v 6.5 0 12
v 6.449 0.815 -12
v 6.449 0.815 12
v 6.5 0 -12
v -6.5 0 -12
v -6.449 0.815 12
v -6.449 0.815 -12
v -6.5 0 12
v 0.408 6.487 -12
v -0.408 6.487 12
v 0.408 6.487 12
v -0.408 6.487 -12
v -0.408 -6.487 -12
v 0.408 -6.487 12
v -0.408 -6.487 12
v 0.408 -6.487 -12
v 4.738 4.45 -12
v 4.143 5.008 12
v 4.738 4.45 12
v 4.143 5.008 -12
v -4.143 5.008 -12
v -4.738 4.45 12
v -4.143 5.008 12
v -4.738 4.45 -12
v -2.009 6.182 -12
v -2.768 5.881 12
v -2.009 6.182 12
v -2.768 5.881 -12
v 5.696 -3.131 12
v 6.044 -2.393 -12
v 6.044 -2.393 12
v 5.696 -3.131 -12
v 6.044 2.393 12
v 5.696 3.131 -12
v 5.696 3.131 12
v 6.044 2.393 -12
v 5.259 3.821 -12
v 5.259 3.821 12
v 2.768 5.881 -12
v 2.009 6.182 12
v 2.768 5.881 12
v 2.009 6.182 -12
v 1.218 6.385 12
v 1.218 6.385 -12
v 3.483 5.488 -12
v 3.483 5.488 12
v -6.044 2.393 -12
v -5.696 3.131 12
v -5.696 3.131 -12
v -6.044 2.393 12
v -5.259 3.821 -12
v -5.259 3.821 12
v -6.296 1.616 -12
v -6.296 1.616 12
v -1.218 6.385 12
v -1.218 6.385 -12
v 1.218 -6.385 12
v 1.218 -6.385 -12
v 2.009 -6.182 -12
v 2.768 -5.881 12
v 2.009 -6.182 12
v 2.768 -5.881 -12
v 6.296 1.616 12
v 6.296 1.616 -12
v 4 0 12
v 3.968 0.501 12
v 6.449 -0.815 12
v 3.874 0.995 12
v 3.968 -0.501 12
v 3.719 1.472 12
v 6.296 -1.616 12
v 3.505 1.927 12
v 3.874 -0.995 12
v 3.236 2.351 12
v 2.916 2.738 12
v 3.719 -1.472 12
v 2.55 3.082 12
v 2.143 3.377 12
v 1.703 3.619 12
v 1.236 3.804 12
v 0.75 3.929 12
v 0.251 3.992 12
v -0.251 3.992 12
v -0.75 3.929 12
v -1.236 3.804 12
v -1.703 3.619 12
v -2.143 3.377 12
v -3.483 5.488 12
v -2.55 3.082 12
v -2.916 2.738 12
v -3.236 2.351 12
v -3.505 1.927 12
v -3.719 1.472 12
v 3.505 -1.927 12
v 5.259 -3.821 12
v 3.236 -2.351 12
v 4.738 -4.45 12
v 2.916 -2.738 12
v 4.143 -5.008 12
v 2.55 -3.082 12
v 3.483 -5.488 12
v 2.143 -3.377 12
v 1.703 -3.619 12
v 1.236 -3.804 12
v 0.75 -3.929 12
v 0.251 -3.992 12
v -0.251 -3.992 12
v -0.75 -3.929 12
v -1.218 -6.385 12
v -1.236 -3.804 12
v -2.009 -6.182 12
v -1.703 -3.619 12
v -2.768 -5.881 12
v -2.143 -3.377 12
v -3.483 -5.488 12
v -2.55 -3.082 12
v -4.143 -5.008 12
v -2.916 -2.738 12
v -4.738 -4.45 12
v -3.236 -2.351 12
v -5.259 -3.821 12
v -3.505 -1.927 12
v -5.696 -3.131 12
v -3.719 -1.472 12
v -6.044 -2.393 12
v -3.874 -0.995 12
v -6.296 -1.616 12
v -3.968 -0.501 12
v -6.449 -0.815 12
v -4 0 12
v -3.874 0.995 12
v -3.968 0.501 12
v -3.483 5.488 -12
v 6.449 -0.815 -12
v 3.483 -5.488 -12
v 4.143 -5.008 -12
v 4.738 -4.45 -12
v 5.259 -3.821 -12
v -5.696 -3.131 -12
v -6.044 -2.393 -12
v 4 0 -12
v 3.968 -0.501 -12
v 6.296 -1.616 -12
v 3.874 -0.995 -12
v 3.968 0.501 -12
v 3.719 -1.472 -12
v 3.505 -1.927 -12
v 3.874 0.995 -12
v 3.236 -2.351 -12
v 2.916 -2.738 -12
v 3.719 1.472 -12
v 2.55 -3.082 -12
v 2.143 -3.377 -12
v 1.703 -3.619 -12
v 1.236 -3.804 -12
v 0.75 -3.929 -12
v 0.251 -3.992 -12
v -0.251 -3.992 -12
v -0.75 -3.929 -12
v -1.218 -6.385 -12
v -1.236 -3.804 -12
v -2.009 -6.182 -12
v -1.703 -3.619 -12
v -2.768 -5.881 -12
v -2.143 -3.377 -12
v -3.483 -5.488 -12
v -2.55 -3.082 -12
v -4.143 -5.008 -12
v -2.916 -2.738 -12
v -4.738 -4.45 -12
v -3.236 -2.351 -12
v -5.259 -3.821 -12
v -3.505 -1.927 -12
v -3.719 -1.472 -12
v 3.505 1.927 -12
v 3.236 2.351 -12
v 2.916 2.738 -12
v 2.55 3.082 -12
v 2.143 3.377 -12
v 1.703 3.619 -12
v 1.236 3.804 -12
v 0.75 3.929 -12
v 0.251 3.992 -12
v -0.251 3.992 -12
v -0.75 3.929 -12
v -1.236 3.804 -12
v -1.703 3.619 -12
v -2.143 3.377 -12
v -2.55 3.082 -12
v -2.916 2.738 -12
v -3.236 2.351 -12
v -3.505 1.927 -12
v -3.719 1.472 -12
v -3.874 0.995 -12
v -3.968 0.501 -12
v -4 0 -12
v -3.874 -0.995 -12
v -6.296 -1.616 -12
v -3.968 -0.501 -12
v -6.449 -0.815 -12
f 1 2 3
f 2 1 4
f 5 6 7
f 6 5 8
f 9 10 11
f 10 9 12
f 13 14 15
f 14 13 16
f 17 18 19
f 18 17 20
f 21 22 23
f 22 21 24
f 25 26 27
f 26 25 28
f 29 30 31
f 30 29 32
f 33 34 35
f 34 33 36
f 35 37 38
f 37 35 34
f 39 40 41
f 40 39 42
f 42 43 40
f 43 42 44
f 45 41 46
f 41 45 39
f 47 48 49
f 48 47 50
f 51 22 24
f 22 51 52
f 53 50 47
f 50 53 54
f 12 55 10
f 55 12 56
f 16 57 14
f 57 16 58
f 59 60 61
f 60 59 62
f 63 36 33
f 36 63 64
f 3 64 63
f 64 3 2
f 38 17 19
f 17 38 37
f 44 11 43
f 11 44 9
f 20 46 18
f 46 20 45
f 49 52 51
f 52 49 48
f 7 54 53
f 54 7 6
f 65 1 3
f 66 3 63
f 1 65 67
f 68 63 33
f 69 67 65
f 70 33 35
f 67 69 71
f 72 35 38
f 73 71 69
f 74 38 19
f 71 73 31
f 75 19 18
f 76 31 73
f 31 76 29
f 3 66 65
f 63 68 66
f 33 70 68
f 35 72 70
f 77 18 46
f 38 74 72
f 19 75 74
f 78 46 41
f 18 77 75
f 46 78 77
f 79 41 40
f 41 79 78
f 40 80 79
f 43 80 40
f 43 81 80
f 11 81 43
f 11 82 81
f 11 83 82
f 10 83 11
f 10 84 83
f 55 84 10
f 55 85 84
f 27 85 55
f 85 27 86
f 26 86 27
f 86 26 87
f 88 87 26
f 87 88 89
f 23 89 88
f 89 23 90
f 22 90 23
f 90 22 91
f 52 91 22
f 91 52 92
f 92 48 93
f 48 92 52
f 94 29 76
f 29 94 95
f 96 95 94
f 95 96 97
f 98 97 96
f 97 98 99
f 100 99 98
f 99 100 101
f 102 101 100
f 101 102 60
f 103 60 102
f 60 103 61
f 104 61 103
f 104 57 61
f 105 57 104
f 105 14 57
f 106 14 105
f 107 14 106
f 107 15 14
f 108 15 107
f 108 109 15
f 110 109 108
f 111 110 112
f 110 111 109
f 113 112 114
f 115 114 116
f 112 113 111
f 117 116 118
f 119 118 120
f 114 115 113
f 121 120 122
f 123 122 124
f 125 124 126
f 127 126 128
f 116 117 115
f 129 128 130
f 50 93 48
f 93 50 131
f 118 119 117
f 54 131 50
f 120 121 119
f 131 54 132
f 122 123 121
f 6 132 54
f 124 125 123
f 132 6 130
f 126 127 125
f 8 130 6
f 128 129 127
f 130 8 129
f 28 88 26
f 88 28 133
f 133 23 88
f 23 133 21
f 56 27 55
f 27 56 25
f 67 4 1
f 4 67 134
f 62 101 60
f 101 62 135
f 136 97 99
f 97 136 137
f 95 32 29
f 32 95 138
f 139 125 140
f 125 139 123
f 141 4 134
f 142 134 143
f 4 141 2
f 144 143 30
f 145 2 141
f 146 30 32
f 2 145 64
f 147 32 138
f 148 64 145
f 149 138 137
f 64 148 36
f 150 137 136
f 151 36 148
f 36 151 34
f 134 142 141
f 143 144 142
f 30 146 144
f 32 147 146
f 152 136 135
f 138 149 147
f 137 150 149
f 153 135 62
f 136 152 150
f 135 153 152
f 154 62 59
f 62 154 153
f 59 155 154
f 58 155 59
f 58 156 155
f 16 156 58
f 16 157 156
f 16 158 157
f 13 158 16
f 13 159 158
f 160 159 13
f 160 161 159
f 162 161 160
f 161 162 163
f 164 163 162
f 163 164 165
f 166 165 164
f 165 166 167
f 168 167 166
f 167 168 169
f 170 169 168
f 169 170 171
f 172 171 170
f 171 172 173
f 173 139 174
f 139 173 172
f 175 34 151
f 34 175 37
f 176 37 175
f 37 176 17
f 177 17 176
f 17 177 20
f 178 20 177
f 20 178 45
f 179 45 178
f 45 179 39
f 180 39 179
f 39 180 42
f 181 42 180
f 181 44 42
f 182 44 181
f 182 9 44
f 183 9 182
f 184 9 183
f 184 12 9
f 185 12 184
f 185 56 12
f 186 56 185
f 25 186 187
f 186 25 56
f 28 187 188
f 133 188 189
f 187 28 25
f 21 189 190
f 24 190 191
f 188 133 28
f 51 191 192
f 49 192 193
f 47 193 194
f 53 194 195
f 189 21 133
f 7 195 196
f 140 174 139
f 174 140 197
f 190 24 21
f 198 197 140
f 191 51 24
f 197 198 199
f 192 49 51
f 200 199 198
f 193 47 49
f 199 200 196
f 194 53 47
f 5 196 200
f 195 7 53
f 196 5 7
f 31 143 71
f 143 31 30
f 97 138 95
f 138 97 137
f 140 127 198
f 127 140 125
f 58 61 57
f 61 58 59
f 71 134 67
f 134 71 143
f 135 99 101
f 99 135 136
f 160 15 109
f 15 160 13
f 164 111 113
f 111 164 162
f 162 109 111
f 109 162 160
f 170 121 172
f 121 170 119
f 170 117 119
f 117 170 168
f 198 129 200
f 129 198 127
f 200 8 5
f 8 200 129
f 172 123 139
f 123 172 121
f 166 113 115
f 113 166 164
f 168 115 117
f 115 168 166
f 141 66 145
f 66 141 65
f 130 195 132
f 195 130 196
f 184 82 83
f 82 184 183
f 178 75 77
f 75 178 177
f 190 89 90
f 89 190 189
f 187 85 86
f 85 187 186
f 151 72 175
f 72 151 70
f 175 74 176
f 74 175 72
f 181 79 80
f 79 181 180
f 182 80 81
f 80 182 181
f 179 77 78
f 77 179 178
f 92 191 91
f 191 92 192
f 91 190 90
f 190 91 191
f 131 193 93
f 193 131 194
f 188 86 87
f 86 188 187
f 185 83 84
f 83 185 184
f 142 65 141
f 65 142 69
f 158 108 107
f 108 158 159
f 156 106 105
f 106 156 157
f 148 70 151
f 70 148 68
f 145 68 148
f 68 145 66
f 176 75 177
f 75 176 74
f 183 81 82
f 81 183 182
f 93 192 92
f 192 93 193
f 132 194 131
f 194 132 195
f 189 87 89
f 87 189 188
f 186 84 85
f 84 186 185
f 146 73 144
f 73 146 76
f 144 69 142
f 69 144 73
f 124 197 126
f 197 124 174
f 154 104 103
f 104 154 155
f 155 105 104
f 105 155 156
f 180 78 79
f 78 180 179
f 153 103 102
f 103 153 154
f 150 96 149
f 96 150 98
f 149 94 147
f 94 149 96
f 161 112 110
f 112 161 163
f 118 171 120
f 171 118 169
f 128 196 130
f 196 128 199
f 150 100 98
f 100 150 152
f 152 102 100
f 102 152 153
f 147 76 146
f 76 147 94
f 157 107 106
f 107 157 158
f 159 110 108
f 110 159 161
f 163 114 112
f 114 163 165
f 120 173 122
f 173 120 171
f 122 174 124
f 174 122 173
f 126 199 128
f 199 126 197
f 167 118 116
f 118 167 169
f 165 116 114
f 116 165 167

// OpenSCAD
$fn = 50;


difference() {
	union() {
		translate(v = [0, 0, -12.0000000000]) {
			cylinder(h = 24, r = 6.5000000000);
		}
	}
	union() {
		translate(v = [0, 0, -100.0000000000]) {
			cylinder(h = 200, r = 4);
		}
	}
}
